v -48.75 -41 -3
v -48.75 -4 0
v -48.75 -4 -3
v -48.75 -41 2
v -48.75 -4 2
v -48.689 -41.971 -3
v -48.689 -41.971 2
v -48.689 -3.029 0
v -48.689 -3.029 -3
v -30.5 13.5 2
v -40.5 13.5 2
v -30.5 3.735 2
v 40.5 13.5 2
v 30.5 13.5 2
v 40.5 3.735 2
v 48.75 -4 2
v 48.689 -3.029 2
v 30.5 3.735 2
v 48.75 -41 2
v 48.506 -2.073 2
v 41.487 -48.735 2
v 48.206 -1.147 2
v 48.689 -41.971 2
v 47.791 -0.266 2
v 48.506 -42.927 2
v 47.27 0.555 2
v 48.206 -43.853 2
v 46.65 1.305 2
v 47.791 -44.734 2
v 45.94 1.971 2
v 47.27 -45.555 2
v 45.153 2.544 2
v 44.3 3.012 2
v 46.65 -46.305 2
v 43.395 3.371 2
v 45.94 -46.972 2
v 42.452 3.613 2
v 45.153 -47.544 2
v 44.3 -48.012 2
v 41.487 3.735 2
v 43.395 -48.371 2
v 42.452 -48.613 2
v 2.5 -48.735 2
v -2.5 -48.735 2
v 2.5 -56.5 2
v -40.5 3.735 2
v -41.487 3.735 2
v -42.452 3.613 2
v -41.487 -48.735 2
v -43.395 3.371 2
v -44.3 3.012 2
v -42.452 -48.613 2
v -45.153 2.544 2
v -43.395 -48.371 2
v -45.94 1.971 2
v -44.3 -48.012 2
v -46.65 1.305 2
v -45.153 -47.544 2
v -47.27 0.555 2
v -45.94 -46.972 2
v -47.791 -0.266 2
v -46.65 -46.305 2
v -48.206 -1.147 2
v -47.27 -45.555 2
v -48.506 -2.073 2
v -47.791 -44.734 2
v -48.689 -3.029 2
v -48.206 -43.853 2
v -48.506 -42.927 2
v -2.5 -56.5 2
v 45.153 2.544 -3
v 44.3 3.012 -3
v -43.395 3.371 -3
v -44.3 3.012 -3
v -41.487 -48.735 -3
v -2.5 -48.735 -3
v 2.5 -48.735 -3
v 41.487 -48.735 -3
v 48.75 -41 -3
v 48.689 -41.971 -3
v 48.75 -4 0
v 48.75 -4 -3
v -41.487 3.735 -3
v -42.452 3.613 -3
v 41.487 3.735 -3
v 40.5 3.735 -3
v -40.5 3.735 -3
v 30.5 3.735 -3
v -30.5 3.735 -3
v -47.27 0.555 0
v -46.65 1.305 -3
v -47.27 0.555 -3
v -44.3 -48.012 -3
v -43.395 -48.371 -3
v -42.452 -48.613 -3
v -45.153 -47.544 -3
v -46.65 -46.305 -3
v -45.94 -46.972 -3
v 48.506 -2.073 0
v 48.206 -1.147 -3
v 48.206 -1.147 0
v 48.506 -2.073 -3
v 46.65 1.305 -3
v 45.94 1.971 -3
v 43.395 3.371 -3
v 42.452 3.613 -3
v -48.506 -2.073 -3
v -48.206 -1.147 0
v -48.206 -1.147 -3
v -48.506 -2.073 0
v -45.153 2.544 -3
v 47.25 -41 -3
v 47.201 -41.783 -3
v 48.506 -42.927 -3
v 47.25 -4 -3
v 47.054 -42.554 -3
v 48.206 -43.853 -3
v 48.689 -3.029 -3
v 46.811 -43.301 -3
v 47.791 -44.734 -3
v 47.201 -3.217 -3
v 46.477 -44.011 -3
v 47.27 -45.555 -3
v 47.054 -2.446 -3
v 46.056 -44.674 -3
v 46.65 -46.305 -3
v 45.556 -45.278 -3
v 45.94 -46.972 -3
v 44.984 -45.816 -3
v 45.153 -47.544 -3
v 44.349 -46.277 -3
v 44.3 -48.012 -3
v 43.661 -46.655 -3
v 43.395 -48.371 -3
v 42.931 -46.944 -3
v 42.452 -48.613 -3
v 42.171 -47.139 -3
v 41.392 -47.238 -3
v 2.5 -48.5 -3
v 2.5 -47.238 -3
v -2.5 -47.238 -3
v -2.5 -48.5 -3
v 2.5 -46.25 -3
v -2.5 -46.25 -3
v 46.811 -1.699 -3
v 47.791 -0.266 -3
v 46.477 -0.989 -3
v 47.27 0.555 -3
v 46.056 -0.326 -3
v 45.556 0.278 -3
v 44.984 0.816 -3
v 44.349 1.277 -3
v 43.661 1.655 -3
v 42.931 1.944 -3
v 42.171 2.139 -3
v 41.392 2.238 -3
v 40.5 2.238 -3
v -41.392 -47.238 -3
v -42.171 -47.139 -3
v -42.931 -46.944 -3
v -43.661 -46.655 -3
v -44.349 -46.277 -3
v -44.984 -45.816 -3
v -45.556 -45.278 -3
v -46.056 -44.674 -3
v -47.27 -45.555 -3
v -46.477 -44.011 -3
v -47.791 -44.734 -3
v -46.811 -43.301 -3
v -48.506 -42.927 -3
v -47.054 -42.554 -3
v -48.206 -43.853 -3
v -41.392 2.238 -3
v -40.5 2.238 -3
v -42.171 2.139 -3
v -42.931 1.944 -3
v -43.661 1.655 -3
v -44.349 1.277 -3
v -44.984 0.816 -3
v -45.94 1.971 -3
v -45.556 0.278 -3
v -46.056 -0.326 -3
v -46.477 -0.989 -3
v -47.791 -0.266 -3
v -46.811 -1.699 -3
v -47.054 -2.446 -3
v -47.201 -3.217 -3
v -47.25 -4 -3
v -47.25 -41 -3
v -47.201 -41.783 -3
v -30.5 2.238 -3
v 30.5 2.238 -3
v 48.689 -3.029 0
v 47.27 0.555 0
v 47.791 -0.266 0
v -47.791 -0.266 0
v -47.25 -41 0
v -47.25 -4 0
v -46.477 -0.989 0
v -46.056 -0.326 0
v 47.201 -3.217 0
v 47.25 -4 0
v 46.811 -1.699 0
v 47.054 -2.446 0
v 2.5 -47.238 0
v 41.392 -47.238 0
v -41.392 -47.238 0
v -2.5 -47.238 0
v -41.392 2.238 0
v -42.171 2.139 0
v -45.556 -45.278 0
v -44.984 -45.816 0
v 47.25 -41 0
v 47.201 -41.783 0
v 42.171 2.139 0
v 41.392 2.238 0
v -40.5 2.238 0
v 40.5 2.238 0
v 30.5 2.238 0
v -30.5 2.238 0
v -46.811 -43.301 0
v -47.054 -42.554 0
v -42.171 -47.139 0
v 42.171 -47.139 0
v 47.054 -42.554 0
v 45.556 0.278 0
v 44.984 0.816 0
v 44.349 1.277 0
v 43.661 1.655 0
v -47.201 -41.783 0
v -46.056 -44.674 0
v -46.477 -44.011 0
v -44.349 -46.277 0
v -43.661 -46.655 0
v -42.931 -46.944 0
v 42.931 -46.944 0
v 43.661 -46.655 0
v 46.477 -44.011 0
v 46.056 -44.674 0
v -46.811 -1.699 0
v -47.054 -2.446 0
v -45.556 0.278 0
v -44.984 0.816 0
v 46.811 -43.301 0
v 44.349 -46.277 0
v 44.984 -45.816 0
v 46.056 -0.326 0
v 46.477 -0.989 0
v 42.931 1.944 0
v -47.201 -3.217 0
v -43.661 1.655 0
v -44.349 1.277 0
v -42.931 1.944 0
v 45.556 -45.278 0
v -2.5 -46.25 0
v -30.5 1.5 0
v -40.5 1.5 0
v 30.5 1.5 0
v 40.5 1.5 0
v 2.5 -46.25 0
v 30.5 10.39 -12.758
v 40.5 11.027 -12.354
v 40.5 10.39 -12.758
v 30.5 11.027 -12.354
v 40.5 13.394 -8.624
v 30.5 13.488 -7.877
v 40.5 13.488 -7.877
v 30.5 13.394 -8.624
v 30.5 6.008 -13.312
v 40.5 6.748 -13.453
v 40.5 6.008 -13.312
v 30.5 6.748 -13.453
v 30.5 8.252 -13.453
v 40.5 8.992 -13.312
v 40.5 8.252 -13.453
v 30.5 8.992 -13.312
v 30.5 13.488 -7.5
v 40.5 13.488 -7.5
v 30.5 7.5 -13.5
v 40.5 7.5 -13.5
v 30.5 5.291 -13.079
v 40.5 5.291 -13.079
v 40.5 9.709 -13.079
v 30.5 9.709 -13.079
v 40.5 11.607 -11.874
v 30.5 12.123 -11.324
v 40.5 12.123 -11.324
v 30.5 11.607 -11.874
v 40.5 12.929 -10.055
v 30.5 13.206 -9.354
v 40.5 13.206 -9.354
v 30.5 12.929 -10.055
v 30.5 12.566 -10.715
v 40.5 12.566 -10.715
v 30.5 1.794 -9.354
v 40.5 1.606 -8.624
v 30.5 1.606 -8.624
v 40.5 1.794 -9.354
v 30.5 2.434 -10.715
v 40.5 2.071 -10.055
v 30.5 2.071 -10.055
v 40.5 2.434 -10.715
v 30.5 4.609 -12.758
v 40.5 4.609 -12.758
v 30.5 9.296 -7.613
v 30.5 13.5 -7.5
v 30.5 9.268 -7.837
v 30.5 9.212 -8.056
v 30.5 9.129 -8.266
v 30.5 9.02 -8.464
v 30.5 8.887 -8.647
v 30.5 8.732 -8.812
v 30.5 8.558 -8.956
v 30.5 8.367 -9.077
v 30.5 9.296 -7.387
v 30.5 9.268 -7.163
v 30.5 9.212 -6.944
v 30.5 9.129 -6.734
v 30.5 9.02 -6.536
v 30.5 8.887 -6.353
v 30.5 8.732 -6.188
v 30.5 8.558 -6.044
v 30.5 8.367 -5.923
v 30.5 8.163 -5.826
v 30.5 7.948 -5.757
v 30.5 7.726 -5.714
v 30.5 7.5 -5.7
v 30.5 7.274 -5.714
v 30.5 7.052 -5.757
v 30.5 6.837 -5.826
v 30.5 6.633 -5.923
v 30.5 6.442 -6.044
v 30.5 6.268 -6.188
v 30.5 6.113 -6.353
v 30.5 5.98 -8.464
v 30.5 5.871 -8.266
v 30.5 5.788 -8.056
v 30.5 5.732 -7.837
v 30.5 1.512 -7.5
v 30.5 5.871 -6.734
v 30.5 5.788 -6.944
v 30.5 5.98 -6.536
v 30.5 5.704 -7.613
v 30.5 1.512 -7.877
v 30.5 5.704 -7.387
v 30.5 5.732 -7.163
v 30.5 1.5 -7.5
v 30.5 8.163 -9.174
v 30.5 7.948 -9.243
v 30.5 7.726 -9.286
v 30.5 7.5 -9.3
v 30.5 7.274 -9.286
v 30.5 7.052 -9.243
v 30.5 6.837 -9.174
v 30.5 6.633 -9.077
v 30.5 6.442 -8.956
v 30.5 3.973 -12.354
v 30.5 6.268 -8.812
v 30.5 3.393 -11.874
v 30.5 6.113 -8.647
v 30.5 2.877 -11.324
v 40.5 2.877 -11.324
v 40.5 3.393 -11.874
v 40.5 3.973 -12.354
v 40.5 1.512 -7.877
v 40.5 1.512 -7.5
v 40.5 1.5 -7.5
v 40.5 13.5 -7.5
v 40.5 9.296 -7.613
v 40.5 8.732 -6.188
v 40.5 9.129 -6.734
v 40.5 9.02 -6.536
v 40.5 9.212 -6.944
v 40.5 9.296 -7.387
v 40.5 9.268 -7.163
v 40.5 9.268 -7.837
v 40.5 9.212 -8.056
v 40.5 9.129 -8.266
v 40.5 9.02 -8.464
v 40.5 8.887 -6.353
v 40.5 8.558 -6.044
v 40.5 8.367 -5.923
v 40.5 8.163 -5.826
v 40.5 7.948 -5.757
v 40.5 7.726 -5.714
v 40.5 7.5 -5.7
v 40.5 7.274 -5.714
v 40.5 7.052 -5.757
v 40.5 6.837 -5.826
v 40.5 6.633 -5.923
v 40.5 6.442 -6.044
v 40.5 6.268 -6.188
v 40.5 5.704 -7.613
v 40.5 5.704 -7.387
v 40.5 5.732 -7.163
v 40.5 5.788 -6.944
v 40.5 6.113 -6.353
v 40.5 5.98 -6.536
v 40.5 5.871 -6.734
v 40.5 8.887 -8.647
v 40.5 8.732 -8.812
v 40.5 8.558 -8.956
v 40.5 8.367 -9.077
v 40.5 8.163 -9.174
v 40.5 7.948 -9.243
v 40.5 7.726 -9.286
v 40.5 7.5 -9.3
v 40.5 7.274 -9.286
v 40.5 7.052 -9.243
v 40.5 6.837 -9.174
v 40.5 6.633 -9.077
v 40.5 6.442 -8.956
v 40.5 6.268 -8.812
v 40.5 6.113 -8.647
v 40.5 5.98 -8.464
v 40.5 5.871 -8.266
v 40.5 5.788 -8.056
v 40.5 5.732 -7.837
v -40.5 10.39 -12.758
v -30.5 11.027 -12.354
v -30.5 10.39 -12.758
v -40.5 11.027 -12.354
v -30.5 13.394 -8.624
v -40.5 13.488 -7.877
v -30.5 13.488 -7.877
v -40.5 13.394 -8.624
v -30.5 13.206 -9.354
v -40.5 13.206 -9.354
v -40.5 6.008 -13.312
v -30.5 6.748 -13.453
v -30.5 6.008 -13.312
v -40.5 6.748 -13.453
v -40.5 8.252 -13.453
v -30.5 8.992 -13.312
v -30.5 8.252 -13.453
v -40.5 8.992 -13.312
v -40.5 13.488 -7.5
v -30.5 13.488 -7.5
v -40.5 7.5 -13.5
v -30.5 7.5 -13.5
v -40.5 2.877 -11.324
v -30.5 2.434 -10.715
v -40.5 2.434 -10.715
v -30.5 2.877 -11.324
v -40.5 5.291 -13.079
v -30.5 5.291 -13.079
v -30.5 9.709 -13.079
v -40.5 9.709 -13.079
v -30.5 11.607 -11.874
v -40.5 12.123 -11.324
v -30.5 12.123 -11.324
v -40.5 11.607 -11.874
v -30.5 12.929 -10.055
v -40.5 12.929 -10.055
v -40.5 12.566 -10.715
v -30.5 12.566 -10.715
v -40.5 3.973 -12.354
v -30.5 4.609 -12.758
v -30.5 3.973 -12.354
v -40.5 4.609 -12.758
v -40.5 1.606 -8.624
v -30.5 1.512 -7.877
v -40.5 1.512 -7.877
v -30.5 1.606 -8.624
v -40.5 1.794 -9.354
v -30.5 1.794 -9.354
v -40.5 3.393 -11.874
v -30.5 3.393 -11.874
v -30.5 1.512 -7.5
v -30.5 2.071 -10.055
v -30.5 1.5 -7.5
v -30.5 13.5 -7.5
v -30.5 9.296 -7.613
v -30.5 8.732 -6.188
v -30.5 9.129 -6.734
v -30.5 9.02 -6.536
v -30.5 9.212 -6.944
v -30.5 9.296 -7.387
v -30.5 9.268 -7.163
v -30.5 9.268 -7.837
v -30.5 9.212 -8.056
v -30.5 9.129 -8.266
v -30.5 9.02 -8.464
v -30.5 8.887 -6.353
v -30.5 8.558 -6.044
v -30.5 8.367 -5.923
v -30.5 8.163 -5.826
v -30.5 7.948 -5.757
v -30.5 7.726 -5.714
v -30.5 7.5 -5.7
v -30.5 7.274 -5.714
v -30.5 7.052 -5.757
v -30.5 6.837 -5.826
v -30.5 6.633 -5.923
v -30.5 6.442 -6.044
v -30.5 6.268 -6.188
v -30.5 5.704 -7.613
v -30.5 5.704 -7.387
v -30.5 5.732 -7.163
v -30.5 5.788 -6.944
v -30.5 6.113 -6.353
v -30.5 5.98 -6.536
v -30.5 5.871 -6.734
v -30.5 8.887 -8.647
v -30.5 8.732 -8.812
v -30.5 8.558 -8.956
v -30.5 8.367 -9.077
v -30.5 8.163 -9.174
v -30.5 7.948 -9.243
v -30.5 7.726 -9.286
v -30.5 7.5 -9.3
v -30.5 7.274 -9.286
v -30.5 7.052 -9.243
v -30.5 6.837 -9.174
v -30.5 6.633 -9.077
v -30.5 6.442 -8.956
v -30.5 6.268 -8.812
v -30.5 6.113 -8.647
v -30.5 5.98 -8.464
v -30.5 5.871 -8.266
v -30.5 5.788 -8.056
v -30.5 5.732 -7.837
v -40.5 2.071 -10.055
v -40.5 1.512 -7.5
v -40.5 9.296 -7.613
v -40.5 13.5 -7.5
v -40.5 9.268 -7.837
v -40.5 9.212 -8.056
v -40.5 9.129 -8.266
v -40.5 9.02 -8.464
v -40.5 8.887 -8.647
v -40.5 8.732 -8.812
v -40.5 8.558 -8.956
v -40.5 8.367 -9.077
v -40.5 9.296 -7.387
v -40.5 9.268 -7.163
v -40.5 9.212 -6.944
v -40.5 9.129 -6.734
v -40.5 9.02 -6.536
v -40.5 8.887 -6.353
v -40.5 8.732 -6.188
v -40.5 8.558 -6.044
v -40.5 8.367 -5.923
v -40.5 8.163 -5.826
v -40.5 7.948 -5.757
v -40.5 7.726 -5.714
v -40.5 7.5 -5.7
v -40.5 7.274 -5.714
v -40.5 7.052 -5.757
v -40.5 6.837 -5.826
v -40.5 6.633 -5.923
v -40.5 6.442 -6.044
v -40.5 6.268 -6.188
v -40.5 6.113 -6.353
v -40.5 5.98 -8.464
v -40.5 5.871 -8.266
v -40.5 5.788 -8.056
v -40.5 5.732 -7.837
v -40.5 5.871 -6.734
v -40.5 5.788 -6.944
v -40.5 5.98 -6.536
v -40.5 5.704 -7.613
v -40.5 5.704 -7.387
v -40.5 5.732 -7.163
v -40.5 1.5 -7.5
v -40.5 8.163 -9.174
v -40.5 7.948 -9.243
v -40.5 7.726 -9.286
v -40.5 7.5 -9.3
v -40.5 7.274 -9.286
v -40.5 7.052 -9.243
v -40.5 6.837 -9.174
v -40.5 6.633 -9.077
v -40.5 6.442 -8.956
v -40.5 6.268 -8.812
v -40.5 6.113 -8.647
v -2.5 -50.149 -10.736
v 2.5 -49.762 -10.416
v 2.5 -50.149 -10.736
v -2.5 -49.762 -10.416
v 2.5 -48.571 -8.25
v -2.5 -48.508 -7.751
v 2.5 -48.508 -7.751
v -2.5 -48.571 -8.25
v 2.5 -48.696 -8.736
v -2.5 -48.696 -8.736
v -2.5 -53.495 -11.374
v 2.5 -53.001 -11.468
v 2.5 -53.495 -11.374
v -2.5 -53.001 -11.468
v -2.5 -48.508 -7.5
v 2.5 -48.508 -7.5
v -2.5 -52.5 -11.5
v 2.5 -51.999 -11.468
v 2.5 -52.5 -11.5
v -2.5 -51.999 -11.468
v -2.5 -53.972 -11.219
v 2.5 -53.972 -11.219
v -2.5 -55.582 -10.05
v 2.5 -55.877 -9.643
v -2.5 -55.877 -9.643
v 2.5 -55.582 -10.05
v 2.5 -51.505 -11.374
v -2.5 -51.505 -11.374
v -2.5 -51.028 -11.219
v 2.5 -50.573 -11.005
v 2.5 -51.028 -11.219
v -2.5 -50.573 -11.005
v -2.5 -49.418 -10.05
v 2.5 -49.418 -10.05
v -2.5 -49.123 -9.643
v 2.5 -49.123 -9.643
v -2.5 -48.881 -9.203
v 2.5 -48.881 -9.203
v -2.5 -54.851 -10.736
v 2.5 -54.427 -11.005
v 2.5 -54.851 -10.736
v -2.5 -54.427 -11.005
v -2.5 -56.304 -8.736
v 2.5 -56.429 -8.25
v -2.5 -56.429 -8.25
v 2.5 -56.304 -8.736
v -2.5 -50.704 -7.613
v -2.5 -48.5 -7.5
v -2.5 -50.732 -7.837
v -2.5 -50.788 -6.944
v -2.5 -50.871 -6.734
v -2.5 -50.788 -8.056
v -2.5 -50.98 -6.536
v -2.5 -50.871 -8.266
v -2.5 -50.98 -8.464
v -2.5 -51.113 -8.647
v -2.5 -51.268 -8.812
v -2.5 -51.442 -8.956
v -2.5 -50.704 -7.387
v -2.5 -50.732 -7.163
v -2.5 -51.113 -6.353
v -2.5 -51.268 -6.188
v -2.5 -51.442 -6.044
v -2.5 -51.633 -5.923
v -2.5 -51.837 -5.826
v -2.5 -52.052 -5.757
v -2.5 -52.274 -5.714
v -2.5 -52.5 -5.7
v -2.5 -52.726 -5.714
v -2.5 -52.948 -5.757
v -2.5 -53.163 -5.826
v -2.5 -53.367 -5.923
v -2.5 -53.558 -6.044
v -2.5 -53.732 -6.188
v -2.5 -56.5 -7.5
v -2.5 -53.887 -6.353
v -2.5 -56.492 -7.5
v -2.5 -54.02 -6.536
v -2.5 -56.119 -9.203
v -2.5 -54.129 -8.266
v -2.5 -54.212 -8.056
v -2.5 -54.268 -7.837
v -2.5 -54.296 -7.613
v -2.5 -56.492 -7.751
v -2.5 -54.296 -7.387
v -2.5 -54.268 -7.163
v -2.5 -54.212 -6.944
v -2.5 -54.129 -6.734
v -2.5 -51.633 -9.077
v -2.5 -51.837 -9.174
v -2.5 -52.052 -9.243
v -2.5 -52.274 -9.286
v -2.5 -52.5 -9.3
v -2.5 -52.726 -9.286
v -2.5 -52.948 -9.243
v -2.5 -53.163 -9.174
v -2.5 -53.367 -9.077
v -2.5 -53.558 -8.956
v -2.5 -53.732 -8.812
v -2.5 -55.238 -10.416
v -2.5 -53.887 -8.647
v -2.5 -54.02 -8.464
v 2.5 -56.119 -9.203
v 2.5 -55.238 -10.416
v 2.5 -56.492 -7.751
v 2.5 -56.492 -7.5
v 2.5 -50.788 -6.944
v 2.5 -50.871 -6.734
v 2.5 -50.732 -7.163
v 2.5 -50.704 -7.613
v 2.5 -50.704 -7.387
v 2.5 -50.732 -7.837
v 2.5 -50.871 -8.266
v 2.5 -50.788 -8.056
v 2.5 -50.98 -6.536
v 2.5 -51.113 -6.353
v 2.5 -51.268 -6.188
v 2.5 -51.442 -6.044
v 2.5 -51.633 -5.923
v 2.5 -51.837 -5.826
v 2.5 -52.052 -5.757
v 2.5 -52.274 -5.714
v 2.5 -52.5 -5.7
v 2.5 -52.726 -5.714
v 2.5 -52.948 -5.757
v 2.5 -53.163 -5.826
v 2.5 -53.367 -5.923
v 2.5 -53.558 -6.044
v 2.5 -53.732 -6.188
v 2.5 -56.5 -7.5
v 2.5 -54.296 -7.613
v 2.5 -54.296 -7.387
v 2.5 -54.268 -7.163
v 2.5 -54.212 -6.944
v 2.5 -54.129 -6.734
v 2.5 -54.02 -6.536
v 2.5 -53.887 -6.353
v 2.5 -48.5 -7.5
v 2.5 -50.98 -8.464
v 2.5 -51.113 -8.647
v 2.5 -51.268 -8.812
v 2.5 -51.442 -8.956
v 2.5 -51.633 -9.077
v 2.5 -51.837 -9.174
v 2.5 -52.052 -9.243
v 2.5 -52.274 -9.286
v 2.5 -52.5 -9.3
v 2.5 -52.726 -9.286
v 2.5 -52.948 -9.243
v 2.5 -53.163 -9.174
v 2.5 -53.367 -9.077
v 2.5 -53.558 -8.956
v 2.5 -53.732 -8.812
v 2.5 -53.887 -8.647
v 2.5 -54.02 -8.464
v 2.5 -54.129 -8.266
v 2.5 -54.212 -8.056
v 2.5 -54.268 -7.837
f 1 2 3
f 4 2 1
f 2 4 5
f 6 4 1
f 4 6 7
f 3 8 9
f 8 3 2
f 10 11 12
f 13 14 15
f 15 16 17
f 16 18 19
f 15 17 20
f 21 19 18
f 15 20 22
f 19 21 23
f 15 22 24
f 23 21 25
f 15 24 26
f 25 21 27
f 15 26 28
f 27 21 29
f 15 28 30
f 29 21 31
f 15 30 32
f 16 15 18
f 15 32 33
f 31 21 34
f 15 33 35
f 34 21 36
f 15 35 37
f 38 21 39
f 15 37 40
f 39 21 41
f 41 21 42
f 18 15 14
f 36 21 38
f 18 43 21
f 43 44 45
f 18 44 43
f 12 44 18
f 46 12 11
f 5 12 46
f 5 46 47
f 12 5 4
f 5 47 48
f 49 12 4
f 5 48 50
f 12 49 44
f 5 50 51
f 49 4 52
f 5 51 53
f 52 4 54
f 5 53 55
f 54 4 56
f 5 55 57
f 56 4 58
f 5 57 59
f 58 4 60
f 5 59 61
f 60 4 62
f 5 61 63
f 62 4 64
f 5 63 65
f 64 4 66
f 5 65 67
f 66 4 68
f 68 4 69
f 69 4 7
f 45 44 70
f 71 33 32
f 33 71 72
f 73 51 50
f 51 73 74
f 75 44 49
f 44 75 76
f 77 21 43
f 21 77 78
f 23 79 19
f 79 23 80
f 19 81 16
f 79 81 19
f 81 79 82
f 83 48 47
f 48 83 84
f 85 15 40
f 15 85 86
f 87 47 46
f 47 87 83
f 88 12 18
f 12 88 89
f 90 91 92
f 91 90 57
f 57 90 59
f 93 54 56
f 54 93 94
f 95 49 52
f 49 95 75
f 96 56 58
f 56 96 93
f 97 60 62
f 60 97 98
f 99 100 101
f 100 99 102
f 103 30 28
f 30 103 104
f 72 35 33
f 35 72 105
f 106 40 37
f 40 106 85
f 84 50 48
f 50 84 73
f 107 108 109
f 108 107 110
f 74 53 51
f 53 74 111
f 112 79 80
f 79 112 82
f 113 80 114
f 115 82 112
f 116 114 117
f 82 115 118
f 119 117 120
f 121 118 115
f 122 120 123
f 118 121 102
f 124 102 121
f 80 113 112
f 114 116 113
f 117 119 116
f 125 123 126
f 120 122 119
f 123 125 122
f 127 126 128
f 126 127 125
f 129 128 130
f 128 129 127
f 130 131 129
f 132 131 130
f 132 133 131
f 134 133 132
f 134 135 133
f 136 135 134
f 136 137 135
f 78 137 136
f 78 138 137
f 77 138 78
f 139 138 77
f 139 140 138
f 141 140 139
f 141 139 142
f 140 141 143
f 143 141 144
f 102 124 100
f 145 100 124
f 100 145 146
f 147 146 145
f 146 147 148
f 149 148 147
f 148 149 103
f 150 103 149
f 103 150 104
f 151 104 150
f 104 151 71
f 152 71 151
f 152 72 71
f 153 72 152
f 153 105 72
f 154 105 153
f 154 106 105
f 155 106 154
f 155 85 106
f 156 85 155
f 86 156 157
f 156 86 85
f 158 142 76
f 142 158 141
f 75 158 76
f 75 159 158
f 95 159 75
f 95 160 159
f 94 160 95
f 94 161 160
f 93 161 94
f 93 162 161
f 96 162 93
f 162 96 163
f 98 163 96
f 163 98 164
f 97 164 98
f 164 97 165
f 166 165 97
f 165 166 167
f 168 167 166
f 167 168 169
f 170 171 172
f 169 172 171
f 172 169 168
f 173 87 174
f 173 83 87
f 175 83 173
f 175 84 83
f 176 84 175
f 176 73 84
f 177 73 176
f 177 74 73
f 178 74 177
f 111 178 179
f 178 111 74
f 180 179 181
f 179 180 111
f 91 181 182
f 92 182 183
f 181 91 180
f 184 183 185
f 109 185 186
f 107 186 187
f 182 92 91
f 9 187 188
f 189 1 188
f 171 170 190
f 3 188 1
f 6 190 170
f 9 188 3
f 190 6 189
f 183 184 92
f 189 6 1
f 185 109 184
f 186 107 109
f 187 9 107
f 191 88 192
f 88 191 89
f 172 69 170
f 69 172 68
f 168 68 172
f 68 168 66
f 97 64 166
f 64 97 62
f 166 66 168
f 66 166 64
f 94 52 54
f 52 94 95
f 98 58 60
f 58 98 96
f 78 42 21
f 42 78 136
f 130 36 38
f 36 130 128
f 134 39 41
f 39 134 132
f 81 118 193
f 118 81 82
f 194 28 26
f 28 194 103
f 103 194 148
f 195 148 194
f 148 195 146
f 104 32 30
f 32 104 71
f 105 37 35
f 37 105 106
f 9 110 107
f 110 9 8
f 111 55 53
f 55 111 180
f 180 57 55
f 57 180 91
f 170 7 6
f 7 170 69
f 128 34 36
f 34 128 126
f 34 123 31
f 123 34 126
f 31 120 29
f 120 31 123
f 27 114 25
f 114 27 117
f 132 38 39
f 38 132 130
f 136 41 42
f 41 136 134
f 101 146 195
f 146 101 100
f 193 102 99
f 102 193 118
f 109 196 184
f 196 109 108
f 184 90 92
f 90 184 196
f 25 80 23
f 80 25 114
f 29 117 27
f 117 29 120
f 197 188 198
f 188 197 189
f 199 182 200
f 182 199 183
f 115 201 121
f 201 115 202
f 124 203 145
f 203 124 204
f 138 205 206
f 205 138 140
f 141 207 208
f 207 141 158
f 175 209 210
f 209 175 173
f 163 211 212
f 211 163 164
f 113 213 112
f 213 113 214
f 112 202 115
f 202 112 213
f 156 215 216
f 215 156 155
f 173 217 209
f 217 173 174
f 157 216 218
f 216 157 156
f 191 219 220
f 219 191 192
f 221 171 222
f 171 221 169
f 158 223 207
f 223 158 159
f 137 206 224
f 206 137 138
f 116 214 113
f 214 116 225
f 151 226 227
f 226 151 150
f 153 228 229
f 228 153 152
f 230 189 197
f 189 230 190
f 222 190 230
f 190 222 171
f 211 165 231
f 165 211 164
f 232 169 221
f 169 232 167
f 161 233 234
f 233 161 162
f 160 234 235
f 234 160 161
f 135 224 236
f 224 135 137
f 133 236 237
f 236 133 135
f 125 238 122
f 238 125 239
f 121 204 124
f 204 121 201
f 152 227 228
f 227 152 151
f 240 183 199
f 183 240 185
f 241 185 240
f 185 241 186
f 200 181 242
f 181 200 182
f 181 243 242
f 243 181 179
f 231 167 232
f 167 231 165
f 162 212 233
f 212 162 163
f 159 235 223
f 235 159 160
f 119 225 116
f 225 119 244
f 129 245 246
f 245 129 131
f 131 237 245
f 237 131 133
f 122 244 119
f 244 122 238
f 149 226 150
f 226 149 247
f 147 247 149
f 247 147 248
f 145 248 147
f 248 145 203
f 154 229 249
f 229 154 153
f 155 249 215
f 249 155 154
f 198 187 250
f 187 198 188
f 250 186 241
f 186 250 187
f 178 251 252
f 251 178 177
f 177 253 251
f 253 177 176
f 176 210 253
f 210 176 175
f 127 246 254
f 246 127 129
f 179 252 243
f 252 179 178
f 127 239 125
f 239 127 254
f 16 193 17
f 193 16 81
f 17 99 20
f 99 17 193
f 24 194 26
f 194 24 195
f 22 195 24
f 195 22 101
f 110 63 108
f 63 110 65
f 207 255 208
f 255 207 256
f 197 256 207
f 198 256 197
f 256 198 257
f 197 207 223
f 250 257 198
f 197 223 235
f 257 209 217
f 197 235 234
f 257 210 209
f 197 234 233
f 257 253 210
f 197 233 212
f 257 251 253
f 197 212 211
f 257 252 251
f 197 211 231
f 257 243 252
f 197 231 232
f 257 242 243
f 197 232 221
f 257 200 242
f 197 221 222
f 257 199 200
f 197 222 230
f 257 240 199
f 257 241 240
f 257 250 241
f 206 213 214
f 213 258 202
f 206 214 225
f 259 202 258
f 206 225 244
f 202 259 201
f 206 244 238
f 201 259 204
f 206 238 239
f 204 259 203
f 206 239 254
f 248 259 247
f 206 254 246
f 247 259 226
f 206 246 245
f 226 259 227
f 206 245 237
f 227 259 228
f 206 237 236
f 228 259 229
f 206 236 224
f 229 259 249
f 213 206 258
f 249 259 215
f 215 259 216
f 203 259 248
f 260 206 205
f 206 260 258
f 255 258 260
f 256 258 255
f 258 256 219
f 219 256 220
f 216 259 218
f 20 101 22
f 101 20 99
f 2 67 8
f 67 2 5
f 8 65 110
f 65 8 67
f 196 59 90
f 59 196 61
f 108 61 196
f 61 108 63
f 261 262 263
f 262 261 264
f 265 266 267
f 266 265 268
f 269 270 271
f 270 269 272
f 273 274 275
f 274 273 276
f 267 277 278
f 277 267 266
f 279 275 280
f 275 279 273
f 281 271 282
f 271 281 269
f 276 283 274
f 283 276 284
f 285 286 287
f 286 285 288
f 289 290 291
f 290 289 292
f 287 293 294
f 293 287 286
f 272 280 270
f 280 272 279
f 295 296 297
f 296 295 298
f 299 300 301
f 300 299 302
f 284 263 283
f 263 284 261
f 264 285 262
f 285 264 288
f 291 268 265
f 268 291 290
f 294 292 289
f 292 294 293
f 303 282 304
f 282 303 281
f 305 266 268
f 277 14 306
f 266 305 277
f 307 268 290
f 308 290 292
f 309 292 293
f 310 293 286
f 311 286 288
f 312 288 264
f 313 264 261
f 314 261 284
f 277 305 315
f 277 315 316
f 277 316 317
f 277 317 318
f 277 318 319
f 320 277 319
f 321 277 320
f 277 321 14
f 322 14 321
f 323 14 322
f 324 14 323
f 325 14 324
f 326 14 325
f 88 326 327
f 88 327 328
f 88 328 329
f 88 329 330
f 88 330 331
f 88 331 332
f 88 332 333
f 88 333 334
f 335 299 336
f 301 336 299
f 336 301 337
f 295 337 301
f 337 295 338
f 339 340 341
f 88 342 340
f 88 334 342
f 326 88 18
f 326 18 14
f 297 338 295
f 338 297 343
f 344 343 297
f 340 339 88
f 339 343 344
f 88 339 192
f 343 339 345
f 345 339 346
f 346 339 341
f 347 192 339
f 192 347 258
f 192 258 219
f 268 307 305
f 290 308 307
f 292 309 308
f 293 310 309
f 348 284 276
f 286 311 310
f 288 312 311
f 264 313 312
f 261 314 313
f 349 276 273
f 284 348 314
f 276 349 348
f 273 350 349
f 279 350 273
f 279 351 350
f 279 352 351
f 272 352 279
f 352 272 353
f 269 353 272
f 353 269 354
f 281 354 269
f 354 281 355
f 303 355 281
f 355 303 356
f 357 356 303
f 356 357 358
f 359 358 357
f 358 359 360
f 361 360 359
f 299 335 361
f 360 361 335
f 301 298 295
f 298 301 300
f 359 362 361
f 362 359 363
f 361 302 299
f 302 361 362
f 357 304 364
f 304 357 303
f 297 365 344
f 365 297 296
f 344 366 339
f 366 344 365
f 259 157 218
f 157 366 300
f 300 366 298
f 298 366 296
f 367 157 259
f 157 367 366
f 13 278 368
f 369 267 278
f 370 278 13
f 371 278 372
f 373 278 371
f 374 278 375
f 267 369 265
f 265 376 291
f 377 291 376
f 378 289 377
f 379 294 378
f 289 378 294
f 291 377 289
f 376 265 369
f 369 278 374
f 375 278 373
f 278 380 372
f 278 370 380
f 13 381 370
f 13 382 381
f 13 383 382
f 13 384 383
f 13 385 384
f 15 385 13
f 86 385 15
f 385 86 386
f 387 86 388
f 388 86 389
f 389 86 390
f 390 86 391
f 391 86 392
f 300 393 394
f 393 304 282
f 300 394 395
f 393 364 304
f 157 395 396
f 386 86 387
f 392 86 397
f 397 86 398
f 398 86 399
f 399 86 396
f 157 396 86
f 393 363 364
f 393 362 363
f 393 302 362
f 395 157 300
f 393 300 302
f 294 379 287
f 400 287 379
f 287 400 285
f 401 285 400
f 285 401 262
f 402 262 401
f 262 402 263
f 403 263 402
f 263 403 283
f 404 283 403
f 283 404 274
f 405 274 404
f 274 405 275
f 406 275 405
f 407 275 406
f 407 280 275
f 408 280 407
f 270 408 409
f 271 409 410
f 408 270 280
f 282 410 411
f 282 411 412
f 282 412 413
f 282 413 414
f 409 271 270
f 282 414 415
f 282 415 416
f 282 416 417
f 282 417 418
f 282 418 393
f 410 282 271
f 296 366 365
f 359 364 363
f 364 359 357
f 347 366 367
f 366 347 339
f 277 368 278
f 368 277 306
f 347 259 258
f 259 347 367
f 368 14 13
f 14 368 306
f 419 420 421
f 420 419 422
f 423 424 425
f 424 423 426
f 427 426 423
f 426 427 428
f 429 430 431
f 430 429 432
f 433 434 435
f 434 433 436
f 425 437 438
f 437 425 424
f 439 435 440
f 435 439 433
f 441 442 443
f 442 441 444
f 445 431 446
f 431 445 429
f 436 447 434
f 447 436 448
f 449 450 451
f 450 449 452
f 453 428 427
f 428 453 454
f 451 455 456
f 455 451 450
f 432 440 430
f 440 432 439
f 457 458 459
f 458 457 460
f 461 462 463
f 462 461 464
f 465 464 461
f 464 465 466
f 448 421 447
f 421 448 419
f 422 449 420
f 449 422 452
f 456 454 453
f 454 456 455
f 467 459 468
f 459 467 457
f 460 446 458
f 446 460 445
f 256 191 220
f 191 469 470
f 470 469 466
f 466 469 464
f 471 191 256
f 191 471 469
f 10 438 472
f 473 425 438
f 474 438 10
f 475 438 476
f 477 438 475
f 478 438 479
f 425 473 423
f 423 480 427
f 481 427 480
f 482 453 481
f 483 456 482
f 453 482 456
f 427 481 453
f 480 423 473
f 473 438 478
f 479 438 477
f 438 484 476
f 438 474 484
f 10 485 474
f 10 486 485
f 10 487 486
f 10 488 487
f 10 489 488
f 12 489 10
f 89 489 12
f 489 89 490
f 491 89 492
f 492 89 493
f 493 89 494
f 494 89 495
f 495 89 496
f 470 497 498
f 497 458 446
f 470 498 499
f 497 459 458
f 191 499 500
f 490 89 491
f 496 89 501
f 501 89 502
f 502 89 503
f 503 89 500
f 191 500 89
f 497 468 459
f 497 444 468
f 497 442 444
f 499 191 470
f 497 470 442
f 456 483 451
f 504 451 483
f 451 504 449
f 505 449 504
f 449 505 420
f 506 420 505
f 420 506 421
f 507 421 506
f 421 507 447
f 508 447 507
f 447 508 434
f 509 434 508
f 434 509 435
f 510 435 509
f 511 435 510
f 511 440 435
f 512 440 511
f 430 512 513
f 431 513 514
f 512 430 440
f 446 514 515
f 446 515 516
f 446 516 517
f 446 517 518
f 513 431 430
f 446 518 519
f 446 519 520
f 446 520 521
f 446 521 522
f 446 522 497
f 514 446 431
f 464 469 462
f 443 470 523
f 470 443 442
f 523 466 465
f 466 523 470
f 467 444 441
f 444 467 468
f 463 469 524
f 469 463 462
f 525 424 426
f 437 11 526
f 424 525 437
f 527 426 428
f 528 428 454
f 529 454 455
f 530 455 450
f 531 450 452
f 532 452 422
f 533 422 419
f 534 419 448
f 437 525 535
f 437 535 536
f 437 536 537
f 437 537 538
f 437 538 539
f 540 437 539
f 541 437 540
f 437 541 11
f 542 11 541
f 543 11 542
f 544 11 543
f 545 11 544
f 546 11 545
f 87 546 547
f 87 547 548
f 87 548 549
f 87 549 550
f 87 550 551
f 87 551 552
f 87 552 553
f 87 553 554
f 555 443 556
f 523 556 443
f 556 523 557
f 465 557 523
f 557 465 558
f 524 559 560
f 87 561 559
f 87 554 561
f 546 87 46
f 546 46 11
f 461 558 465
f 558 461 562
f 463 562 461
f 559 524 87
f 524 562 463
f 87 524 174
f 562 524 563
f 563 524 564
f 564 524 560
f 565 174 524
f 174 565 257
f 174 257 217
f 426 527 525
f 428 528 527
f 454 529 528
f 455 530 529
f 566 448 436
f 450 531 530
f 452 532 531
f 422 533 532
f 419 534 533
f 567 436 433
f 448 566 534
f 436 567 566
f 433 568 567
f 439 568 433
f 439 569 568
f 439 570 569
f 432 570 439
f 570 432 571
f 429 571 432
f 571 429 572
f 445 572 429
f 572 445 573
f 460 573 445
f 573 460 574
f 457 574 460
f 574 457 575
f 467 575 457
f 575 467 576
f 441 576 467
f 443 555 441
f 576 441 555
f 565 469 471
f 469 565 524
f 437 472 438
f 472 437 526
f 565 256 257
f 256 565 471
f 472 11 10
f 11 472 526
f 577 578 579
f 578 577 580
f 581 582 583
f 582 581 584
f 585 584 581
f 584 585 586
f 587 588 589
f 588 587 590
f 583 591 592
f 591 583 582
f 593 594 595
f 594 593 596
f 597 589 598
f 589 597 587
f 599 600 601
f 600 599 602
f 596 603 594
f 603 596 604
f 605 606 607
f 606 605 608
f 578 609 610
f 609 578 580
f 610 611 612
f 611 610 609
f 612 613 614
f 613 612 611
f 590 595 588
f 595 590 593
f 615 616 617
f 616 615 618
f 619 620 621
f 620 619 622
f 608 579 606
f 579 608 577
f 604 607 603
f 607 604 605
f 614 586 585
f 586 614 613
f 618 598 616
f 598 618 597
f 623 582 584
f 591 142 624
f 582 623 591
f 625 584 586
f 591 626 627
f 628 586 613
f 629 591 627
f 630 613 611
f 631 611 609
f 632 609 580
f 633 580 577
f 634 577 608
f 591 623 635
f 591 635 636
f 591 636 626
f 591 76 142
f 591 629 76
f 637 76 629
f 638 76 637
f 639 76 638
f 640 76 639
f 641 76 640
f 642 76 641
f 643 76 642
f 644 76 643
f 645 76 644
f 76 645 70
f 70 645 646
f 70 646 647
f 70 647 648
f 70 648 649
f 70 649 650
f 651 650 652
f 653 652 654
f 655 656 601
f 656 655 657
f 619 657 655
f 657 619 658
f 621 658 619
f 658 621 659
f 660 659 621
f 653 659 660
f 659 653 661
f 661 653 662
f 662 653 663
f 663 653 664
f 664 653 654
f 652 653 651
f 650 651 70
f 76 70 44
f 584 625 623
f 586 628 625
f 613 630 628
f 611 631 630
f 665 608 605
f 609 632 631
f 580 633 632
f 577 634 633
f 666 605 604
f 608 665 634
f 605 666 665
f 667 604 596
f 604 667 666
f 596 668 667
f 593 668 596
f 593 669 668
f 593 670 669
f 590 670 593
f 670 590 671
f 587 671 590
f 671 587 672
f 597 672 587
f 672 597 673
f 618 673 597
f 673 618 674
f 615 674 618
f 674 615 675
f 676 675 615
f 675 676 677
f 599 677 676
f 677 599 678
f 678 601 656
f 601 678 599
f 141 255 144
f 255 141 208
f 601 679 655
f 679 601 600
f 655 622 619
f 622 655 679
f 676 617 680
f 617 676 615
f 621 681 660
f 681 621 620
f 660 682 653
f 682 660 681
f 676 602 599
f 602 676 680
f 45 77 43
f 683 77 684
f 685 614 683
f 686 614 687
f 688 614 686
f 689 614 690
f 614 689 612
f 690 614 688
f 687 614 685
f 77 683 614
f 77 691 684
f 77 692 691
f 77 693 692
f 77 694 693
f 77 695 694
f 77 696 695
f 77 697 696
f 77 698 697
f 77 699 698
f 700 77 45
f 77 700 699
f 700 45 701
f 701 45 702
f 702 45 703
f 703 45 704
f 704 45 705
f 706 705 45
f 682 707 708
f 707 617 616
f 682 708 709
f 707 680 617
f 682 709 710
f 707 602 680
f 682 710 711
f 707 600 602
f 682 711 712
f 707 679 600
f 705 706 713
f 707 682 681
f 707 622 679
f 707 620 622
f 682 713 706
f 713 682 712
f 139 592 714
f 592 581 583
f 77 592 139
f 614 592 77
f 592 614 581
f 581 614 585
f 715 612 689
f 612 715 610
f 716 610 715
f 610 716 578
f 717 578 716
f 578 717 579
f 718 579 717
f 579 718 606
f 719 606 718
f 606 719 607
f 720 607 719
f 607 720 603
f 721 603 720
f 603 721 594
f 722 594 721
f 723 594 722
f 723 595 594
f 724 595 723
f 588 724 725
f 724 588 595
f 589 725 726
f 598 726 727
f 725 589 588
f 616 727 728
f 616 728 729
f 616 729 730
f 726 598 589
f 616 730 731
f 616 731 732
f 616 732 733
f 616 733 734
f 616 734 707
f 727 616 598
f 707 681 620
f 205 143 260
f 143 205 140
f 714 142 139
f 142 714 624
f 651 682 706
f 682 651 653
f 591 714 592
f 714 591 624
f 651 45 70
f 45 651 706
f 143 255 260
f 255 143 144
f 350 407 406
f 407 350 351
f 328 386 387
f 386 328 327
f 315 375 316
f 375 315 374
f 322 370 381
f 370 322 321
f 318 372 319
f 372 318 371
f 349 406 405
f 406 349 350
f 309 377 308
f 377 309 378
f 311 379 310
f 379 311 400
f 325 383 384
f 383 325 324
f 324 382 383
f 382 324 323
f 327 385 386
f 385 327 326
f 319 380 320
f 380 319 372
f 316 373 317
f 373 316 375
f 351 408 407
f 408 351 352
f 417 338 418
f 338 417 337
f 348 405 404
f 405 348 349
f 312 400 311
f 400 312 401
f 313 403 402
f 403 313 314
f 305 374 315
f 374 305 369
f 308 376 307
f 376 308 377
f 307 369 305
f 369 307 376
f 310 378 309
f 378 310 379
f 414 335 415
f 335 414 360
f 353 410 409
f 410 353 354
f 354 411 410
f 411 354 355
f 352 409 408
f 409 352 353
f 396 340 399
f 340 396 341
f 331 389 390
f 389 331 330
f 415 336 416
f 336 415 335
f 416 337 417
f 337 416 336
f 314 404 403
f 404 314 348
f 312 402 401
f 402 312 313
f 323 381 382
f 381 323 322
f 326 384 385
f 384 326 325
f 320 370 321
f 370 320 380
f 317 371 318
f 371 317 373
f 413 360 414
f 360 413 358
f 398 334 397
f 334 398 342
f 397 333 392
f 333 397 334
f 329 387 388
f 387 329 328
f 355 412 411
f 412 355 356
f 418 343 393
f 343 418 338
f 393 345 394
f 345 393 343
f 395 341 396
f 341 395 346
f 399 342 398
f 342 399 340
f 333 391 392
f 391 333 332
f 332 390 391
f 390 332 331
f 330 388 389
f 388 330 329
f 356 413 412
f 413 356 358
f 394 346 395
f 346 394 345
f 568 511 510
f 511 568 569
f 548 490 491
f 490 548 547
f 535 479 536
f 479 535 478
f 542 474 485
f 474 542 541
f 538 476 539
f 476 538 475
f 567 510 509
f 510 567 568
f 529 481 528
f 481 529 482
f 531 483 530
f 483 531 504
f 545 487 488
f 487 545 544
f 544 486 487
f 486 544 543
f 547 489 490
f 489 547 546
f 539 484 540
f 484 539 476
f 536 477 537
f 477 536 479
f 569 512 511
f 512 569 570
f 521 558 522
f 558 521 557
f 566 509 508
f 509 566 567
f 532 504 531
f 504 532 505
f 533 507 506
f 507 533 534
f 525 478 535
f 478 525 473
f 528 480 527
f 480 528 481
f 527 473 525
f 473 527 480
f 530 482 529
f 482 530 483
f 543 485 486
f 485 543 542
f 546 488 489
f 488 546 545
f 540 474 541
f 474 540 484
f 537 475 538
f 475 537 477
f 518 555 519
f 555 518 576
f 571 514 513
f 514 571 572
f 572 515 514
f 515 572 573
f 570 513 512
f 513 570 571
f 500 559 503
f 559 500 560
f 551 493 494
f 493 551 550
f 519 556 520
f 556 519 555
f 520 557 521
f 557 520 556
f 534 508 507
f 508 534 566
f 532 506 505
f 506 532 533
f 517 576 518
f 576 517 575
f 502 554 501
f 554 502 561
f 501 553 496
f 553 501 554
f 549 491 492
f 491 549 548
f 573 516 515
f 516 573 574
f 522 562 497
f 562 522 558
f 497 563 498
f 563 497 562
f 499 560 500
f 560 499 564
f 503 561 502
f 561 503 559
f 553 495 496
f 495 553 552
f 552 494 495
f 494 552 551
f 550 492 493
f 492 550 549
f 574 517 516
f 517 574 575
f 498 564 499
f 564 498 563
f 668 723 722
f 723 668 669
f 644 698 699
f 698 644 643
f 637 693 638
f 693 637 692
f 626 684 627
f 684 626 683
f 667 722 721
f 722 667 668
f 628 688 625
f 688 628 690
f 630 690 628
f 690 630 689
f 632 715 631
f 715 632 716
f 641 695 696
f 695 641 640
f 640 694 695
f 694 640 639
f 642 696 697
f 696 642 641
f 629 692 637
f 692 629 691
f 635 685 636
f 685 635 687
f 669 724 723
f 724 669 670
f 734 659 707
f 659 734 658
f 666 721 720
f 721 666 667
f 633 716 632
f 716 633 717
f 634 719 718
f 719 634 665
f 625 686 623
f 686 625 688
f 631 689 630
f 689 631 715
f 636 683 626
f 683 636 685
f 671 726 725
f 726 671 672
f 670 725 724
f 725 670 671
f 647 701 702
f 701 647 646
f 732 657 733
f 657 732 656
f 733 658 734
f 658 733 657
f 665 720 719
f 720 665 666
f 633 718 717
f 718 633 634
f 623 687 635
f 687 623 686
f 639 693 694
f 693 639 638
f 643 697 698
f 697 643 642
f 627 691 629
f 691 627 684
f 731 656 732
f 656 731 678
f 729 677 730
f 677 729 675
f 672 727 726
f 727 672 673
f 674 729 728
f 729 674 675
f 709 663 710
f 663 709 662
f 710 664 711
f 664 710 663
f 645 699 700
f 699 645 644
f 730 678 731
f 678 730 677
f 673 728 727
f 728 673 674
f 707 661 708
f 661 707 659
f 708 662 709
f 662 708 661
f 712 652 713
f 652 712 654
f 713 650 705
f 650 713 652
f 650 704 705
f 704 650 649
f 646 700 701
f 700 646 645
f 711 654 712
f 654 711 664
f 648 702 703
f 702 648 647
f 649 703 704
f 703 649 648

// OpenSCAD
$fn = 50;


difference() {
	union() {
		translate(v = [0, -22.5000000000, -3]) {
			rotate(a = [0, 0, 0]) {
				difference() {
					union() {
						hull() {
							translate(v = [-41.0000000000, 18.5000000000, 0]) {
								cylinder(h = 5, r = 7.7500000000);
							}
							translate(v = [41.0000000000, 18.5000000000, 0]) {
								cylinder(h = 5, r = 7.7500000000);
							}
							translate(v = [-41.0000000000, -18.5000000000, 0]) {
								cylinder(h = 5, r = 7.7500000000);
							}
							translate(v = [41.0000000000, -18.5000000000, 0]) {
								cylinder(h = 5, r = 7.7500000000);
							}
						}
					}
					union() {
						hull() {
							translate(v = [-41.0000000000, 18.5000000000, 0]) {
								cylinder(h = 5, r = 6.2500000000);
							}
							translate(v = [41.0000000000, 18.5000000000, 0]) {
								cylinder(h = 5, r = 6.2500000000);
							}
							translate(v = [-41.0000000000, -18.5000000000, 0]) {
								cylinder(h = 5, r = 6.2500000000);
							}
							translate(v = [41.0000000000, -18.5000000000, 0]) {
								cylinder(h = 5, r = 6.2500000000);
							}
						}
					}
				}
			}
		}
		translate(v = [0, -22.5000000000, 0]) {
			hull() {
				translate(v = [-41.0000000000, 18.5000000000, 0]) {
					cylinder(h = 2, r = 7.7500000000);
				}
				translate(v = [41.0000000000, 18.5000000000, 0]) {
					cylinder(h = 2, r = 7.7500000000);
				}
				translate(v = [-41.0000000000, -18.5000000000, 0]) {
					cylinder(h = 2, r = 7.7500000000);
				}
				translate(v = [41.0000000000, -18.5000000000, 0]) {
					cylinder(h = 2, r = 7.7500000000);
				}
			}
		}
		translate(v = [30.5000000000, 7.5000000000, -7.5000000000]) {
			rotate(a = [0, 90, 0]) {
				cylinder(h = 10, r = 6.0000000000);
			}
		}
		translate(v = [30.5000000000, 1.5000000000, -7.5000000000]) {
			cube(size = [10, 12, 7.5000000000]);
		}
		translate(v = [30.5000000000, -15.0000000000, 0.0000000000]) {
			cube(size = [10, 28.5000000000, 2]);
		}
		translate(v = [-40.5000000000, 7.5000000000, -7.5000000000]) {
			rotate(a = [0, 90, 0]) {
				cylinder(h = 10, r = 6.0000000000);
			}
		}
		translate(v = [-40.5000000000, 1.5000000000, -7.5000000000]) {
			cube(size = [10, 12, 7.5000000000]);
		}
		translate(v = [-40.5000000000, -15.0000000000, 0.0000000000]) {
			cube(size = [10, 28.5000000000, 2]);
		}
		translate(v = [-2.5000000000, -52.5000000000, -7.5000000000]) {
			rotate(a = [0, 90, 0]) {
				cylinder(h = 5, r = 4.0000000000);
			}
		}
		translate(v = [-2.5000000000, -56.5000000000, -7.5000000000]) {
			cube(size = [5, 8, 7.5000000000]);
		}
		translate(v = [-2.5000000000, -56.5000000000, -3.0000000000]) {
			cube(size = [5, 10.2500000000, 5]);
		}
	}
	union() {
		translate(v = [30.5000000000, 7.5000000000, -7.5000000000]) {
			rotate(a = [0, 90, 0]) {
				cylinder(h = 10, r = 1.8000000000);
			}
		}
		translate(v = [-40.5000000000, 7.5000000000, -7.5000000000]) {
			rotate(a = [0, 90, 0]) {
				cylinder(h = 10, r = 1.8000000000);
			}
		}
		translate(v = [-5.0000000000, -52.5000000000, -7.5000000000]) {
			rotate(a = [0, 90, 0]) {
				cylinder(h = 10, r = 1.8000000000);
			}
		}
	}
}
